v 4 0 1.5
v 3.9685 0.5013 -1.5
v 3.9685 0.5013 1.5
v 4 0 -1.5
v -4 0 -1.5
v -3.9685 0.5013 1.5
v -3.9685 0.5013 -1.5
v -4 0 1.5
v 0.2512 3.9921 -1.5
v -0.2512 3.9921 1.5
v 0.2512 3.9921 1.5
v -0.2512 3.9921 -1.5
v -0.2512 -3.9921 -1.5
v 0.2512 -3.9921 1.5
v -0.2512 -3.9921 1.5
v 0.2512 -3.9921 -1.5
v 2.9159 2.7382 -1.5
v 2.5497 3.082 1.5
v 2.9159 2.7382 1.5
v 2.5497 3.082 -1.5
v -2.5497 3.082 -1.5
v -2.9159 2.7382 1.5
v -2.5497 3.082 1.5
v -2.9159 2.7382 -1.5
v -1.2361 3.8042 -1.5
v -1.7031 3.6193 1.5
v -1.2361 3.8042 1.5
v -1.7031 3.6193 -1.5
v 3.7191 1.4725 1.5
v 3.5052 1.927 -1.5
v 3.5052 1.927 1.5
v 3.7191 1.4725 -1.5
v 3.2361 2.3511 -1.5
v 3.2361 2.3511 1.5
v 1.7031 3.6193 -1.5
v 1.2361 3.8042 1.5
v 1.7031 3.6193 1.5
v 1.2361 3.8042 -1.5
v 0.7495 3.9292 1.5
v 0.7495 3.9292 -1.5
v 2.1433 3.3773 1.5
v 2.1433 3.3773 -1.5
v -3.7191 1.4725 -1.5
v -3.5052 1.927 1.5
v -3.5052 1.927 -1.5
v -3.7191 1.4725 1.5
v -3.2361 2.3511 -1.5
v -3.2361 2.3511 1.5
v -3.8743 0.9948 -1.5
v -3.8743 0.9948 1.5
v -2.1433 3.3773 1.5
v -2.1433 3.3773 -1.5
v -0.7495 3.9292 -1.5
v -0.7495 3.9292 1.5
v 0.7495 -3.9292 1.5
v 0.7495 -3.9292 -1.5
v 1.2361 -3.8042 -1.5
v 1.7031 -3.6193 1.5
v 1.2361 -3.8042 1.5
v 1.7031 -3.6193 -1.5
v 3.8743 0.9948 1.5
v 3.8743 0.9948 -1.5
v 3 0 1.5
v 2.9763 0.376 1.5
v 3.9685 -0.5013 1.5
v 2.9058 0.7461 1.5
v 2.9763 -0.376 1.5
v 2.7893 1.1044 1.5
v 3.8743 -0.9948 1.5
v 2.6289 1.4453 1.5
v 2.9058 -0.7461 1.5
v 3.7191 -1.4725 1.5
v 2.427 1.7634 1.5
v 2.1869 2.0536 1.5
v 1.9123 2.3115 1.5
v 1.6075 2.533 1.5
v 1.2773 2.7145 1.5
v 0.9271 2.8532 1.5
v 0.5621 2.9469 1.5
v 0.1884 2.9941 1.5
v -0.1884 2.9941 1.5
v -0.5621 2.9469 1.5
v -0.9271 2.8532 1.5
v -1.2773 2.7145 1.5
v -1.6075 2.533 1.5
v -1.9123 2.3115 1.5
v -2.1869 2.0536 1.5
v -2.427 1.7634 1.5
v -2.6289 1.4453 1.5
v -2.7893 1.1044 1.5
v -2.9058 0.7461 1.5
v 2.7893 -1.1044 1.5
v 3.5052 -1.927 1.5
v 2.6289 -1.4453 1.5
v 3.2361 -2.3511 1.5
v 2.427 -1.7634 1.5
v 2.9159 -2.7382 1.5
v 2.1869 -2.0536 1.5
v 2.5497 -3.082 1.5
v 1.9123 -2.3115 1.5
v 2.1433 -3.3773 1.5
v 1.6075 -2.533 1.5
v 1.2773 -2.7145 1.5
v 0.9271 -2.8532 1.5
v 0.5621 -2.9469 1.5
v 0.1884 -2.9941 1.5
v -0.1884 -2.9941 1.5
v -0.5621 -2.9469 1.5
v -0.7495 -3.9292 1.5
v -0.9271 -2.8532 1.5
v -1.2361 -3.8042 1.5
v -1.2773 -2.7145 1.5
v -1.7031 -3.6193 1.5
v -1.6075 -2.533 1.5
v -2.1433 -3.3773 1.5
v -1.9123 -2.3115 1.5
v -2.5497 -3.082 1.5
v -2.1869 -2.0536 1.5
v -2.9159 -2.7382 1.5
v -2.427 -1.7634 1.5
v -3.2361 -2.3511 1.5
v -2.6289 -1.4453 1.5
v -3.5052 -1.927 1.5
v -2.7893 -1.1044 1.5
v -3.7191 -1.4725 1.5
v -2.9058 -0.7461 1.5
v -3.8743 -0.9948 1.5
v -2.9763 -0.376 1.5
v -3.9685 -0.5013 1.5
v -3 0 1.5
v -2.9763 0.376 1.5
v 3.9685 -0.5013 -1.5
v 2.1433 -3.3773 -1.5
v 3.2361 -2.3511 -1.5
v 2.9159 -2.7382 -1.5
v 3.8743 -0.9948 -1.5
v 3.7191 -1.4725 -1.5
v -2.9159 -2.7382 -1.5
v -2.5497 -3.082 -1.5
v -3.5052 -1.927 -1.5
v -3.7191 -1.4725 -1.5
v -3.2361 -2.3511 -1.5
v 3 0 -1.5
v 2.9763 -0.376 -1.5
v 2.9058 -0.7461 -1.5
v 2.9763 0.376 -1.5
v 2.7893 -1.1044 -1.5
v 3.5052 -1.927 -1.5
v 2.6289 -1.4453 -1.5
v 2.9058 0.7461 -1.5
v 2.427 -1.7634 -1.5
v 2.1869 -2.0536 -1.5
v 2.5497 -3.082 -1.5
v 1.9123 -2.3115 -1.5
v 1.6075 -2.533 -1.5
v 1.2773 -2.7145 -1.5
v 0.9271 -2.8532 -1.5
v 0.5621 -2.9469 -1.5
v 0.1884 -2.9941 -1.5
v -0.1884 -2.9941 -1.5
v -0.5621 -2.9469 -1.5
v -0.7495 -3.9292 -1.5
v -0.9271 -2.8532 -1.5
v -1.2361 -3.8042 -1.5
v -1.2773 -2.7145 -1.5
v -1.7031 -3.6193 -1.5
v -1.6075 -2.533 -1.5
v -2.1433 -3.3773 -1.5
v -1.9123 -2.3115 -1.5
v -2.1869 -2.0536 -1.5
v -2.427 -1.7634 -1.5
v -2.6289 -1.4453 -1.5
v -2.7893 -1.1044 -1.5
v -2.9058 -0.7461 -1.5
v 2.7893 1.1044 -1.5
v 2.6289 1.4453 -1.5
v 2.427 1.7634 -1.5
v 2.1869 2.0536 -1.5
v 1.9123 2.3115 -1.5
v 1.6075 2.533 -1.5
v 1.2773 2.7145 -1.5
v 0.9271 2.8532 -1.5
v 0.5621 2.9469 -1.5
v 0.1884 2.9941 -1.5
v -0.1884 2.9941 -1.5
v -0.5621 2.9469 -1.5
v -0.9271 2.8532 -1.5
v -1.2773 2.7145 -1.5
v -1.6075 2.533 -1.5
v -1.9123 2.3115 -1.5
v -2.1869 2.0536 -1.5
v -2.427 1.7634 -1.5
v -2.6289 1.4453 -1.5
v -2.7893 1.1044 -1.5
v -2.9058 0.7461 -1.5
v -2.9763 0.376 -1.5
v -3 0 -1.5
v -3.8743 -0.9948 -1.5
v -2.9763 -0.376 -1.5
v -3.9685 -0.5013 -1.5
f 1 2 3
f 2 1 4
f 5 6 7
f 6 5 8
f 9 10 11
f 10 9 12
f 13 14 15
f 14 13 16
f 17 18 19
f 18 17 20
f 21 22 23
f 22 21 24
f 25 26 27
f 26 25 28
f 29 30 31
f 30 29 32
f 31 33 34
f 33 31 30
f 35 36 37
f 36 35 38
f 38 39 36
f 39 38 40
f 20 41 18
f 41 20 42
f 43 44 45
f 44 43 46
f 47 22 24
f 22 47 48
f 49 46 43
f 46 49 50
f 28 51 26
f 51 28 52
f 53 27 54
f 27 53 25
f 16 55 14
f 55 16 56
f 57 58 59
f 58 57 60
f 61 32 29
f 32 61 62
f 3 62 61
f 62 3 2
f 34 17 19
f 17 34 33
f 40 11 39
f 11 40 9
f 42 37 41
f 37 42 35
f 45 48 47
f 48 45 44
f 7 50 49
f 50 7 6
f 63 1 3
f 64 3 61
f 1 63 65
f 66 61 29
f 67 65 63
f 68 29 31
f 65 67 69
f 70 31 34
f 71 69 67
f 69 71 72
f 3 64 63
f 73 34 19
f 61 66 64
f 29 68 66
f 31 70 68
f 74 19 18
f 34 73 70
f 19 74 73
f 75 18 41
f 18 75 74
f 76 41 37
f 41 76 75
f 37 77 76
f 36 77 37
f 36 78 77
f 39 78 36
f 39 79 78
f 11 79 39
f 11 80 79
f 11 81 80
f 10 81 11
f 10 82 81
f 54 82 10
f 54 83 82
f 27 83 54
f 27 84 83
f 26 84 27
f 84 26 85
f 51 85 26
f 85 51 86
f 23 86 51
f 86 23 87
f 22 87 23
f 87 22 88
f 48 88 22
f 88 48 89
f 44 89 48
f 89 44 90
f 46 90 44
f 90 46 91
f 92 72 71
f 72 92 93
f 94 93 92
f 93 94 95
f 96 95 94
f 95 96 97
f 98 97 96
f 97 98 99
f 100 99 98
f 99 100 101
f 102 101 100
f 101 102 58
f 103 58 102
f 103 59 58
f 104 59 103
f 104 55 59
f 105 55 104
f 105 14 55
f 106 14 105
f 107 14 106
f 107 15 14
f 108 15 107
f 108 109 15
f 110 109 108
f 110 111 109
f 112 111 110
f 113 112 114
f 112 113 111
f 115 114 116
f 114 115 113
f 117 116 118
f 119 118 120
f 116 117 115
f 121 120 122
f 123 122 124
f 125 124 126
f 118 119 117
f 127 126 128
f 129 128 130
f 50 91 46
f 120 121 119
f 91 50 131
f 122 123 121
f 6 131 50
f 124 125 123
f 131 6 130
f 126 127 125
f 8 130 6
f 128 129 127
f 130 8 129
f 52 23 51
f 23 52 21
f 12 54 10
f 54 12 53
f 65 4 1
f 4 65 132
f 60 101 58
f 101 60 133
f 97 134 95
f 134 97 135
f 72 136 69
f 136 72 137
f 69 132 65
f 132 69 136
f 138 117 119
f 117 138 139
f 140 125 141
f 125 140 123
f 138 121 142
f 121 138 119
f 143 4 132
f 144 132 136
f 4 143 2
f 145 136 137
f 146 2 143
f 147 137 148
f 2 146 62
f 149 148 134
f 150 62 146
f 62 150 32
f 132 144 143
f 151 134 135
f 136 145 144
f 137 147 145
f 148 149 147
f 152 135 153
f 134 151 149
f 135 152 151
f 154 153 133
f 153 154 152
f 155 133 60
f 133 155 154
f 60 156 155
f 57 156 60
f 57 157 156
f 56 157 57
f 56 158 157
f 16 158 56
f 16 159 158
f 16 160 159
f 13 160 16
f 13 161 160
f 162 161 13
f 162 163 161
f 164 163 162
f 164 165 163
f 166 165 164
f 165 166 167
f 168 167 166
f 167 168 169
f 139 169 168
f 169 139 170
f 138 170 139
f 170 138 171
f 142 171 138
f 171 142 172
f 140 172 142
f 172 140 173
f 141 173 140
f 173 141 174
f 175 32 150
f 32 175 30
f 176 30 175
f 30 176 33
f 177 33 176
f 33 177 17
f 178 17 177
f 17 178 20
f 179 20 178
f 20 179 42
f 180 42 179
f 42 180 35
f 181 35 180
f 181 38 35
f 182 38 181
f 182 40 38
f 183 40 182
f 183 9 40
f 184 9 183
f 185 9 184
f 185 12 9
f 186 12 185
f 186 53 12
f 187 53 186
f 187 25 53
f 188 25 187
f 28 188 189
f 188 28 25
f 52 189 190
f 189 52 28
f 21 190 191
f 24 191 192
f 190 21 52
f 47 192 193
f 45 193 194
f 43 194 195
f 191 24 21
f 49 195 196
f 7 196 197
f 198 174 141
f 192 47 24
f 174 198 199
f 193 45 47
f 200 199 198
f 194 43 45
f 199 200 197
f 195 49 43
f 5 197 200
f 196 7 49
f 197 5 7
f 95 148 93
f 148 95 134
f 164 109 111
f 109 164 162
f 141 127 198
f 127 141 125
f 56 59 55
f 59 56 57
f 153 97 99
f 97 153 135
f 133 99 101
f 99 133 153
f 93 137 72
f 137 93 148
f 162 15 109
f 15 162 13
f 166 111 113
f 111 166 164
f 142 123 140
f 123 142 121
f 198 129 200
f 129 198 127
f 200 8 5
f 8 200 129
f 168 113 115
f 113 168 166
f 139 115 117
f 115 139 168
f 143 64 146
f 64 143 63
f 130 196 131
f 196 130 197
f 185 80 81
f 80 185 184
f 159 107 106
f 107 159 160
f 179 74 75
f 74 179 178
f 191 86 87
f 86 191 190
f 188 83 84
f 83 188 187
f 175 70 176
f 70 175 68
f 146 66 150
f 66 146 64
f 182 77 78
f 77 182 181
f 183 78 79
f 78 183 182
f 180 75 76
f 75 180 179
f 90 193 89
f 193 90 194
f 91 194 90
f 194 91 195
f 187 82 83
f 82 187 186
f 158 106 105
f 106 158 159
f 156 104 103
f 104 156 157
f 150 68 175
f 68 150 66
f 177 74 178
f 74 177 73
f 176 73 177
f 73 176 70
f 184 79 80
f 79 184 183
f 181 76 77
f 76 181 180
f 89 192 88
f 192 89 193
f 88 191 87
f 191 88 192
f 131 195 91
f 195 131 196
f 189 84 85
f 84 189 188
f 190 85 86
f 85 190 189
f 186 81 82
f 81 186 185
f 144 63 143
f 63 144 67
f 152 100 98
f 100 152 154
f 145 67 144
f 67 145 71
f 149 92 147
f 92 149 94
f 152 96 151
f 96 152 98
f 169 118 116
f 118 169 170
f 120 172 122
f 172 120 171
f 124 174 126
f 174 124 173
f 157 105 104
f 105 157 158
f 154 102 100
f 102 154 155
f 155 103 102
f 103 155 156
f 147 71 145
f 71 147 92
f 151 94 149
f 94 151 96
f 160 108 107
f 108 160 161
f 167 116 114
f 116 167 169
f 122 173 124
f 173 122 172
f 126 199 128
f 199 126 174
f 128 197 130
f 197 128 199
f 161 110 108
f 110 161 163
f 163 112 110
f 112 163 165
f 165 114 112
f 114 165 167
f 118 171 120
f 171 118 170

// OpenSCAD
$fn = 50;


difference() {
	union() {
		translate(v = [0, 0, -1.5000000000]) {
			cylinder(h = 3, r = 4.0000000000);
		}
	}
	union() {
		translate(v = [0, 0, -100.0000000000]) {
			cylinder(h = 200, r = 3);
		}
	}
}
